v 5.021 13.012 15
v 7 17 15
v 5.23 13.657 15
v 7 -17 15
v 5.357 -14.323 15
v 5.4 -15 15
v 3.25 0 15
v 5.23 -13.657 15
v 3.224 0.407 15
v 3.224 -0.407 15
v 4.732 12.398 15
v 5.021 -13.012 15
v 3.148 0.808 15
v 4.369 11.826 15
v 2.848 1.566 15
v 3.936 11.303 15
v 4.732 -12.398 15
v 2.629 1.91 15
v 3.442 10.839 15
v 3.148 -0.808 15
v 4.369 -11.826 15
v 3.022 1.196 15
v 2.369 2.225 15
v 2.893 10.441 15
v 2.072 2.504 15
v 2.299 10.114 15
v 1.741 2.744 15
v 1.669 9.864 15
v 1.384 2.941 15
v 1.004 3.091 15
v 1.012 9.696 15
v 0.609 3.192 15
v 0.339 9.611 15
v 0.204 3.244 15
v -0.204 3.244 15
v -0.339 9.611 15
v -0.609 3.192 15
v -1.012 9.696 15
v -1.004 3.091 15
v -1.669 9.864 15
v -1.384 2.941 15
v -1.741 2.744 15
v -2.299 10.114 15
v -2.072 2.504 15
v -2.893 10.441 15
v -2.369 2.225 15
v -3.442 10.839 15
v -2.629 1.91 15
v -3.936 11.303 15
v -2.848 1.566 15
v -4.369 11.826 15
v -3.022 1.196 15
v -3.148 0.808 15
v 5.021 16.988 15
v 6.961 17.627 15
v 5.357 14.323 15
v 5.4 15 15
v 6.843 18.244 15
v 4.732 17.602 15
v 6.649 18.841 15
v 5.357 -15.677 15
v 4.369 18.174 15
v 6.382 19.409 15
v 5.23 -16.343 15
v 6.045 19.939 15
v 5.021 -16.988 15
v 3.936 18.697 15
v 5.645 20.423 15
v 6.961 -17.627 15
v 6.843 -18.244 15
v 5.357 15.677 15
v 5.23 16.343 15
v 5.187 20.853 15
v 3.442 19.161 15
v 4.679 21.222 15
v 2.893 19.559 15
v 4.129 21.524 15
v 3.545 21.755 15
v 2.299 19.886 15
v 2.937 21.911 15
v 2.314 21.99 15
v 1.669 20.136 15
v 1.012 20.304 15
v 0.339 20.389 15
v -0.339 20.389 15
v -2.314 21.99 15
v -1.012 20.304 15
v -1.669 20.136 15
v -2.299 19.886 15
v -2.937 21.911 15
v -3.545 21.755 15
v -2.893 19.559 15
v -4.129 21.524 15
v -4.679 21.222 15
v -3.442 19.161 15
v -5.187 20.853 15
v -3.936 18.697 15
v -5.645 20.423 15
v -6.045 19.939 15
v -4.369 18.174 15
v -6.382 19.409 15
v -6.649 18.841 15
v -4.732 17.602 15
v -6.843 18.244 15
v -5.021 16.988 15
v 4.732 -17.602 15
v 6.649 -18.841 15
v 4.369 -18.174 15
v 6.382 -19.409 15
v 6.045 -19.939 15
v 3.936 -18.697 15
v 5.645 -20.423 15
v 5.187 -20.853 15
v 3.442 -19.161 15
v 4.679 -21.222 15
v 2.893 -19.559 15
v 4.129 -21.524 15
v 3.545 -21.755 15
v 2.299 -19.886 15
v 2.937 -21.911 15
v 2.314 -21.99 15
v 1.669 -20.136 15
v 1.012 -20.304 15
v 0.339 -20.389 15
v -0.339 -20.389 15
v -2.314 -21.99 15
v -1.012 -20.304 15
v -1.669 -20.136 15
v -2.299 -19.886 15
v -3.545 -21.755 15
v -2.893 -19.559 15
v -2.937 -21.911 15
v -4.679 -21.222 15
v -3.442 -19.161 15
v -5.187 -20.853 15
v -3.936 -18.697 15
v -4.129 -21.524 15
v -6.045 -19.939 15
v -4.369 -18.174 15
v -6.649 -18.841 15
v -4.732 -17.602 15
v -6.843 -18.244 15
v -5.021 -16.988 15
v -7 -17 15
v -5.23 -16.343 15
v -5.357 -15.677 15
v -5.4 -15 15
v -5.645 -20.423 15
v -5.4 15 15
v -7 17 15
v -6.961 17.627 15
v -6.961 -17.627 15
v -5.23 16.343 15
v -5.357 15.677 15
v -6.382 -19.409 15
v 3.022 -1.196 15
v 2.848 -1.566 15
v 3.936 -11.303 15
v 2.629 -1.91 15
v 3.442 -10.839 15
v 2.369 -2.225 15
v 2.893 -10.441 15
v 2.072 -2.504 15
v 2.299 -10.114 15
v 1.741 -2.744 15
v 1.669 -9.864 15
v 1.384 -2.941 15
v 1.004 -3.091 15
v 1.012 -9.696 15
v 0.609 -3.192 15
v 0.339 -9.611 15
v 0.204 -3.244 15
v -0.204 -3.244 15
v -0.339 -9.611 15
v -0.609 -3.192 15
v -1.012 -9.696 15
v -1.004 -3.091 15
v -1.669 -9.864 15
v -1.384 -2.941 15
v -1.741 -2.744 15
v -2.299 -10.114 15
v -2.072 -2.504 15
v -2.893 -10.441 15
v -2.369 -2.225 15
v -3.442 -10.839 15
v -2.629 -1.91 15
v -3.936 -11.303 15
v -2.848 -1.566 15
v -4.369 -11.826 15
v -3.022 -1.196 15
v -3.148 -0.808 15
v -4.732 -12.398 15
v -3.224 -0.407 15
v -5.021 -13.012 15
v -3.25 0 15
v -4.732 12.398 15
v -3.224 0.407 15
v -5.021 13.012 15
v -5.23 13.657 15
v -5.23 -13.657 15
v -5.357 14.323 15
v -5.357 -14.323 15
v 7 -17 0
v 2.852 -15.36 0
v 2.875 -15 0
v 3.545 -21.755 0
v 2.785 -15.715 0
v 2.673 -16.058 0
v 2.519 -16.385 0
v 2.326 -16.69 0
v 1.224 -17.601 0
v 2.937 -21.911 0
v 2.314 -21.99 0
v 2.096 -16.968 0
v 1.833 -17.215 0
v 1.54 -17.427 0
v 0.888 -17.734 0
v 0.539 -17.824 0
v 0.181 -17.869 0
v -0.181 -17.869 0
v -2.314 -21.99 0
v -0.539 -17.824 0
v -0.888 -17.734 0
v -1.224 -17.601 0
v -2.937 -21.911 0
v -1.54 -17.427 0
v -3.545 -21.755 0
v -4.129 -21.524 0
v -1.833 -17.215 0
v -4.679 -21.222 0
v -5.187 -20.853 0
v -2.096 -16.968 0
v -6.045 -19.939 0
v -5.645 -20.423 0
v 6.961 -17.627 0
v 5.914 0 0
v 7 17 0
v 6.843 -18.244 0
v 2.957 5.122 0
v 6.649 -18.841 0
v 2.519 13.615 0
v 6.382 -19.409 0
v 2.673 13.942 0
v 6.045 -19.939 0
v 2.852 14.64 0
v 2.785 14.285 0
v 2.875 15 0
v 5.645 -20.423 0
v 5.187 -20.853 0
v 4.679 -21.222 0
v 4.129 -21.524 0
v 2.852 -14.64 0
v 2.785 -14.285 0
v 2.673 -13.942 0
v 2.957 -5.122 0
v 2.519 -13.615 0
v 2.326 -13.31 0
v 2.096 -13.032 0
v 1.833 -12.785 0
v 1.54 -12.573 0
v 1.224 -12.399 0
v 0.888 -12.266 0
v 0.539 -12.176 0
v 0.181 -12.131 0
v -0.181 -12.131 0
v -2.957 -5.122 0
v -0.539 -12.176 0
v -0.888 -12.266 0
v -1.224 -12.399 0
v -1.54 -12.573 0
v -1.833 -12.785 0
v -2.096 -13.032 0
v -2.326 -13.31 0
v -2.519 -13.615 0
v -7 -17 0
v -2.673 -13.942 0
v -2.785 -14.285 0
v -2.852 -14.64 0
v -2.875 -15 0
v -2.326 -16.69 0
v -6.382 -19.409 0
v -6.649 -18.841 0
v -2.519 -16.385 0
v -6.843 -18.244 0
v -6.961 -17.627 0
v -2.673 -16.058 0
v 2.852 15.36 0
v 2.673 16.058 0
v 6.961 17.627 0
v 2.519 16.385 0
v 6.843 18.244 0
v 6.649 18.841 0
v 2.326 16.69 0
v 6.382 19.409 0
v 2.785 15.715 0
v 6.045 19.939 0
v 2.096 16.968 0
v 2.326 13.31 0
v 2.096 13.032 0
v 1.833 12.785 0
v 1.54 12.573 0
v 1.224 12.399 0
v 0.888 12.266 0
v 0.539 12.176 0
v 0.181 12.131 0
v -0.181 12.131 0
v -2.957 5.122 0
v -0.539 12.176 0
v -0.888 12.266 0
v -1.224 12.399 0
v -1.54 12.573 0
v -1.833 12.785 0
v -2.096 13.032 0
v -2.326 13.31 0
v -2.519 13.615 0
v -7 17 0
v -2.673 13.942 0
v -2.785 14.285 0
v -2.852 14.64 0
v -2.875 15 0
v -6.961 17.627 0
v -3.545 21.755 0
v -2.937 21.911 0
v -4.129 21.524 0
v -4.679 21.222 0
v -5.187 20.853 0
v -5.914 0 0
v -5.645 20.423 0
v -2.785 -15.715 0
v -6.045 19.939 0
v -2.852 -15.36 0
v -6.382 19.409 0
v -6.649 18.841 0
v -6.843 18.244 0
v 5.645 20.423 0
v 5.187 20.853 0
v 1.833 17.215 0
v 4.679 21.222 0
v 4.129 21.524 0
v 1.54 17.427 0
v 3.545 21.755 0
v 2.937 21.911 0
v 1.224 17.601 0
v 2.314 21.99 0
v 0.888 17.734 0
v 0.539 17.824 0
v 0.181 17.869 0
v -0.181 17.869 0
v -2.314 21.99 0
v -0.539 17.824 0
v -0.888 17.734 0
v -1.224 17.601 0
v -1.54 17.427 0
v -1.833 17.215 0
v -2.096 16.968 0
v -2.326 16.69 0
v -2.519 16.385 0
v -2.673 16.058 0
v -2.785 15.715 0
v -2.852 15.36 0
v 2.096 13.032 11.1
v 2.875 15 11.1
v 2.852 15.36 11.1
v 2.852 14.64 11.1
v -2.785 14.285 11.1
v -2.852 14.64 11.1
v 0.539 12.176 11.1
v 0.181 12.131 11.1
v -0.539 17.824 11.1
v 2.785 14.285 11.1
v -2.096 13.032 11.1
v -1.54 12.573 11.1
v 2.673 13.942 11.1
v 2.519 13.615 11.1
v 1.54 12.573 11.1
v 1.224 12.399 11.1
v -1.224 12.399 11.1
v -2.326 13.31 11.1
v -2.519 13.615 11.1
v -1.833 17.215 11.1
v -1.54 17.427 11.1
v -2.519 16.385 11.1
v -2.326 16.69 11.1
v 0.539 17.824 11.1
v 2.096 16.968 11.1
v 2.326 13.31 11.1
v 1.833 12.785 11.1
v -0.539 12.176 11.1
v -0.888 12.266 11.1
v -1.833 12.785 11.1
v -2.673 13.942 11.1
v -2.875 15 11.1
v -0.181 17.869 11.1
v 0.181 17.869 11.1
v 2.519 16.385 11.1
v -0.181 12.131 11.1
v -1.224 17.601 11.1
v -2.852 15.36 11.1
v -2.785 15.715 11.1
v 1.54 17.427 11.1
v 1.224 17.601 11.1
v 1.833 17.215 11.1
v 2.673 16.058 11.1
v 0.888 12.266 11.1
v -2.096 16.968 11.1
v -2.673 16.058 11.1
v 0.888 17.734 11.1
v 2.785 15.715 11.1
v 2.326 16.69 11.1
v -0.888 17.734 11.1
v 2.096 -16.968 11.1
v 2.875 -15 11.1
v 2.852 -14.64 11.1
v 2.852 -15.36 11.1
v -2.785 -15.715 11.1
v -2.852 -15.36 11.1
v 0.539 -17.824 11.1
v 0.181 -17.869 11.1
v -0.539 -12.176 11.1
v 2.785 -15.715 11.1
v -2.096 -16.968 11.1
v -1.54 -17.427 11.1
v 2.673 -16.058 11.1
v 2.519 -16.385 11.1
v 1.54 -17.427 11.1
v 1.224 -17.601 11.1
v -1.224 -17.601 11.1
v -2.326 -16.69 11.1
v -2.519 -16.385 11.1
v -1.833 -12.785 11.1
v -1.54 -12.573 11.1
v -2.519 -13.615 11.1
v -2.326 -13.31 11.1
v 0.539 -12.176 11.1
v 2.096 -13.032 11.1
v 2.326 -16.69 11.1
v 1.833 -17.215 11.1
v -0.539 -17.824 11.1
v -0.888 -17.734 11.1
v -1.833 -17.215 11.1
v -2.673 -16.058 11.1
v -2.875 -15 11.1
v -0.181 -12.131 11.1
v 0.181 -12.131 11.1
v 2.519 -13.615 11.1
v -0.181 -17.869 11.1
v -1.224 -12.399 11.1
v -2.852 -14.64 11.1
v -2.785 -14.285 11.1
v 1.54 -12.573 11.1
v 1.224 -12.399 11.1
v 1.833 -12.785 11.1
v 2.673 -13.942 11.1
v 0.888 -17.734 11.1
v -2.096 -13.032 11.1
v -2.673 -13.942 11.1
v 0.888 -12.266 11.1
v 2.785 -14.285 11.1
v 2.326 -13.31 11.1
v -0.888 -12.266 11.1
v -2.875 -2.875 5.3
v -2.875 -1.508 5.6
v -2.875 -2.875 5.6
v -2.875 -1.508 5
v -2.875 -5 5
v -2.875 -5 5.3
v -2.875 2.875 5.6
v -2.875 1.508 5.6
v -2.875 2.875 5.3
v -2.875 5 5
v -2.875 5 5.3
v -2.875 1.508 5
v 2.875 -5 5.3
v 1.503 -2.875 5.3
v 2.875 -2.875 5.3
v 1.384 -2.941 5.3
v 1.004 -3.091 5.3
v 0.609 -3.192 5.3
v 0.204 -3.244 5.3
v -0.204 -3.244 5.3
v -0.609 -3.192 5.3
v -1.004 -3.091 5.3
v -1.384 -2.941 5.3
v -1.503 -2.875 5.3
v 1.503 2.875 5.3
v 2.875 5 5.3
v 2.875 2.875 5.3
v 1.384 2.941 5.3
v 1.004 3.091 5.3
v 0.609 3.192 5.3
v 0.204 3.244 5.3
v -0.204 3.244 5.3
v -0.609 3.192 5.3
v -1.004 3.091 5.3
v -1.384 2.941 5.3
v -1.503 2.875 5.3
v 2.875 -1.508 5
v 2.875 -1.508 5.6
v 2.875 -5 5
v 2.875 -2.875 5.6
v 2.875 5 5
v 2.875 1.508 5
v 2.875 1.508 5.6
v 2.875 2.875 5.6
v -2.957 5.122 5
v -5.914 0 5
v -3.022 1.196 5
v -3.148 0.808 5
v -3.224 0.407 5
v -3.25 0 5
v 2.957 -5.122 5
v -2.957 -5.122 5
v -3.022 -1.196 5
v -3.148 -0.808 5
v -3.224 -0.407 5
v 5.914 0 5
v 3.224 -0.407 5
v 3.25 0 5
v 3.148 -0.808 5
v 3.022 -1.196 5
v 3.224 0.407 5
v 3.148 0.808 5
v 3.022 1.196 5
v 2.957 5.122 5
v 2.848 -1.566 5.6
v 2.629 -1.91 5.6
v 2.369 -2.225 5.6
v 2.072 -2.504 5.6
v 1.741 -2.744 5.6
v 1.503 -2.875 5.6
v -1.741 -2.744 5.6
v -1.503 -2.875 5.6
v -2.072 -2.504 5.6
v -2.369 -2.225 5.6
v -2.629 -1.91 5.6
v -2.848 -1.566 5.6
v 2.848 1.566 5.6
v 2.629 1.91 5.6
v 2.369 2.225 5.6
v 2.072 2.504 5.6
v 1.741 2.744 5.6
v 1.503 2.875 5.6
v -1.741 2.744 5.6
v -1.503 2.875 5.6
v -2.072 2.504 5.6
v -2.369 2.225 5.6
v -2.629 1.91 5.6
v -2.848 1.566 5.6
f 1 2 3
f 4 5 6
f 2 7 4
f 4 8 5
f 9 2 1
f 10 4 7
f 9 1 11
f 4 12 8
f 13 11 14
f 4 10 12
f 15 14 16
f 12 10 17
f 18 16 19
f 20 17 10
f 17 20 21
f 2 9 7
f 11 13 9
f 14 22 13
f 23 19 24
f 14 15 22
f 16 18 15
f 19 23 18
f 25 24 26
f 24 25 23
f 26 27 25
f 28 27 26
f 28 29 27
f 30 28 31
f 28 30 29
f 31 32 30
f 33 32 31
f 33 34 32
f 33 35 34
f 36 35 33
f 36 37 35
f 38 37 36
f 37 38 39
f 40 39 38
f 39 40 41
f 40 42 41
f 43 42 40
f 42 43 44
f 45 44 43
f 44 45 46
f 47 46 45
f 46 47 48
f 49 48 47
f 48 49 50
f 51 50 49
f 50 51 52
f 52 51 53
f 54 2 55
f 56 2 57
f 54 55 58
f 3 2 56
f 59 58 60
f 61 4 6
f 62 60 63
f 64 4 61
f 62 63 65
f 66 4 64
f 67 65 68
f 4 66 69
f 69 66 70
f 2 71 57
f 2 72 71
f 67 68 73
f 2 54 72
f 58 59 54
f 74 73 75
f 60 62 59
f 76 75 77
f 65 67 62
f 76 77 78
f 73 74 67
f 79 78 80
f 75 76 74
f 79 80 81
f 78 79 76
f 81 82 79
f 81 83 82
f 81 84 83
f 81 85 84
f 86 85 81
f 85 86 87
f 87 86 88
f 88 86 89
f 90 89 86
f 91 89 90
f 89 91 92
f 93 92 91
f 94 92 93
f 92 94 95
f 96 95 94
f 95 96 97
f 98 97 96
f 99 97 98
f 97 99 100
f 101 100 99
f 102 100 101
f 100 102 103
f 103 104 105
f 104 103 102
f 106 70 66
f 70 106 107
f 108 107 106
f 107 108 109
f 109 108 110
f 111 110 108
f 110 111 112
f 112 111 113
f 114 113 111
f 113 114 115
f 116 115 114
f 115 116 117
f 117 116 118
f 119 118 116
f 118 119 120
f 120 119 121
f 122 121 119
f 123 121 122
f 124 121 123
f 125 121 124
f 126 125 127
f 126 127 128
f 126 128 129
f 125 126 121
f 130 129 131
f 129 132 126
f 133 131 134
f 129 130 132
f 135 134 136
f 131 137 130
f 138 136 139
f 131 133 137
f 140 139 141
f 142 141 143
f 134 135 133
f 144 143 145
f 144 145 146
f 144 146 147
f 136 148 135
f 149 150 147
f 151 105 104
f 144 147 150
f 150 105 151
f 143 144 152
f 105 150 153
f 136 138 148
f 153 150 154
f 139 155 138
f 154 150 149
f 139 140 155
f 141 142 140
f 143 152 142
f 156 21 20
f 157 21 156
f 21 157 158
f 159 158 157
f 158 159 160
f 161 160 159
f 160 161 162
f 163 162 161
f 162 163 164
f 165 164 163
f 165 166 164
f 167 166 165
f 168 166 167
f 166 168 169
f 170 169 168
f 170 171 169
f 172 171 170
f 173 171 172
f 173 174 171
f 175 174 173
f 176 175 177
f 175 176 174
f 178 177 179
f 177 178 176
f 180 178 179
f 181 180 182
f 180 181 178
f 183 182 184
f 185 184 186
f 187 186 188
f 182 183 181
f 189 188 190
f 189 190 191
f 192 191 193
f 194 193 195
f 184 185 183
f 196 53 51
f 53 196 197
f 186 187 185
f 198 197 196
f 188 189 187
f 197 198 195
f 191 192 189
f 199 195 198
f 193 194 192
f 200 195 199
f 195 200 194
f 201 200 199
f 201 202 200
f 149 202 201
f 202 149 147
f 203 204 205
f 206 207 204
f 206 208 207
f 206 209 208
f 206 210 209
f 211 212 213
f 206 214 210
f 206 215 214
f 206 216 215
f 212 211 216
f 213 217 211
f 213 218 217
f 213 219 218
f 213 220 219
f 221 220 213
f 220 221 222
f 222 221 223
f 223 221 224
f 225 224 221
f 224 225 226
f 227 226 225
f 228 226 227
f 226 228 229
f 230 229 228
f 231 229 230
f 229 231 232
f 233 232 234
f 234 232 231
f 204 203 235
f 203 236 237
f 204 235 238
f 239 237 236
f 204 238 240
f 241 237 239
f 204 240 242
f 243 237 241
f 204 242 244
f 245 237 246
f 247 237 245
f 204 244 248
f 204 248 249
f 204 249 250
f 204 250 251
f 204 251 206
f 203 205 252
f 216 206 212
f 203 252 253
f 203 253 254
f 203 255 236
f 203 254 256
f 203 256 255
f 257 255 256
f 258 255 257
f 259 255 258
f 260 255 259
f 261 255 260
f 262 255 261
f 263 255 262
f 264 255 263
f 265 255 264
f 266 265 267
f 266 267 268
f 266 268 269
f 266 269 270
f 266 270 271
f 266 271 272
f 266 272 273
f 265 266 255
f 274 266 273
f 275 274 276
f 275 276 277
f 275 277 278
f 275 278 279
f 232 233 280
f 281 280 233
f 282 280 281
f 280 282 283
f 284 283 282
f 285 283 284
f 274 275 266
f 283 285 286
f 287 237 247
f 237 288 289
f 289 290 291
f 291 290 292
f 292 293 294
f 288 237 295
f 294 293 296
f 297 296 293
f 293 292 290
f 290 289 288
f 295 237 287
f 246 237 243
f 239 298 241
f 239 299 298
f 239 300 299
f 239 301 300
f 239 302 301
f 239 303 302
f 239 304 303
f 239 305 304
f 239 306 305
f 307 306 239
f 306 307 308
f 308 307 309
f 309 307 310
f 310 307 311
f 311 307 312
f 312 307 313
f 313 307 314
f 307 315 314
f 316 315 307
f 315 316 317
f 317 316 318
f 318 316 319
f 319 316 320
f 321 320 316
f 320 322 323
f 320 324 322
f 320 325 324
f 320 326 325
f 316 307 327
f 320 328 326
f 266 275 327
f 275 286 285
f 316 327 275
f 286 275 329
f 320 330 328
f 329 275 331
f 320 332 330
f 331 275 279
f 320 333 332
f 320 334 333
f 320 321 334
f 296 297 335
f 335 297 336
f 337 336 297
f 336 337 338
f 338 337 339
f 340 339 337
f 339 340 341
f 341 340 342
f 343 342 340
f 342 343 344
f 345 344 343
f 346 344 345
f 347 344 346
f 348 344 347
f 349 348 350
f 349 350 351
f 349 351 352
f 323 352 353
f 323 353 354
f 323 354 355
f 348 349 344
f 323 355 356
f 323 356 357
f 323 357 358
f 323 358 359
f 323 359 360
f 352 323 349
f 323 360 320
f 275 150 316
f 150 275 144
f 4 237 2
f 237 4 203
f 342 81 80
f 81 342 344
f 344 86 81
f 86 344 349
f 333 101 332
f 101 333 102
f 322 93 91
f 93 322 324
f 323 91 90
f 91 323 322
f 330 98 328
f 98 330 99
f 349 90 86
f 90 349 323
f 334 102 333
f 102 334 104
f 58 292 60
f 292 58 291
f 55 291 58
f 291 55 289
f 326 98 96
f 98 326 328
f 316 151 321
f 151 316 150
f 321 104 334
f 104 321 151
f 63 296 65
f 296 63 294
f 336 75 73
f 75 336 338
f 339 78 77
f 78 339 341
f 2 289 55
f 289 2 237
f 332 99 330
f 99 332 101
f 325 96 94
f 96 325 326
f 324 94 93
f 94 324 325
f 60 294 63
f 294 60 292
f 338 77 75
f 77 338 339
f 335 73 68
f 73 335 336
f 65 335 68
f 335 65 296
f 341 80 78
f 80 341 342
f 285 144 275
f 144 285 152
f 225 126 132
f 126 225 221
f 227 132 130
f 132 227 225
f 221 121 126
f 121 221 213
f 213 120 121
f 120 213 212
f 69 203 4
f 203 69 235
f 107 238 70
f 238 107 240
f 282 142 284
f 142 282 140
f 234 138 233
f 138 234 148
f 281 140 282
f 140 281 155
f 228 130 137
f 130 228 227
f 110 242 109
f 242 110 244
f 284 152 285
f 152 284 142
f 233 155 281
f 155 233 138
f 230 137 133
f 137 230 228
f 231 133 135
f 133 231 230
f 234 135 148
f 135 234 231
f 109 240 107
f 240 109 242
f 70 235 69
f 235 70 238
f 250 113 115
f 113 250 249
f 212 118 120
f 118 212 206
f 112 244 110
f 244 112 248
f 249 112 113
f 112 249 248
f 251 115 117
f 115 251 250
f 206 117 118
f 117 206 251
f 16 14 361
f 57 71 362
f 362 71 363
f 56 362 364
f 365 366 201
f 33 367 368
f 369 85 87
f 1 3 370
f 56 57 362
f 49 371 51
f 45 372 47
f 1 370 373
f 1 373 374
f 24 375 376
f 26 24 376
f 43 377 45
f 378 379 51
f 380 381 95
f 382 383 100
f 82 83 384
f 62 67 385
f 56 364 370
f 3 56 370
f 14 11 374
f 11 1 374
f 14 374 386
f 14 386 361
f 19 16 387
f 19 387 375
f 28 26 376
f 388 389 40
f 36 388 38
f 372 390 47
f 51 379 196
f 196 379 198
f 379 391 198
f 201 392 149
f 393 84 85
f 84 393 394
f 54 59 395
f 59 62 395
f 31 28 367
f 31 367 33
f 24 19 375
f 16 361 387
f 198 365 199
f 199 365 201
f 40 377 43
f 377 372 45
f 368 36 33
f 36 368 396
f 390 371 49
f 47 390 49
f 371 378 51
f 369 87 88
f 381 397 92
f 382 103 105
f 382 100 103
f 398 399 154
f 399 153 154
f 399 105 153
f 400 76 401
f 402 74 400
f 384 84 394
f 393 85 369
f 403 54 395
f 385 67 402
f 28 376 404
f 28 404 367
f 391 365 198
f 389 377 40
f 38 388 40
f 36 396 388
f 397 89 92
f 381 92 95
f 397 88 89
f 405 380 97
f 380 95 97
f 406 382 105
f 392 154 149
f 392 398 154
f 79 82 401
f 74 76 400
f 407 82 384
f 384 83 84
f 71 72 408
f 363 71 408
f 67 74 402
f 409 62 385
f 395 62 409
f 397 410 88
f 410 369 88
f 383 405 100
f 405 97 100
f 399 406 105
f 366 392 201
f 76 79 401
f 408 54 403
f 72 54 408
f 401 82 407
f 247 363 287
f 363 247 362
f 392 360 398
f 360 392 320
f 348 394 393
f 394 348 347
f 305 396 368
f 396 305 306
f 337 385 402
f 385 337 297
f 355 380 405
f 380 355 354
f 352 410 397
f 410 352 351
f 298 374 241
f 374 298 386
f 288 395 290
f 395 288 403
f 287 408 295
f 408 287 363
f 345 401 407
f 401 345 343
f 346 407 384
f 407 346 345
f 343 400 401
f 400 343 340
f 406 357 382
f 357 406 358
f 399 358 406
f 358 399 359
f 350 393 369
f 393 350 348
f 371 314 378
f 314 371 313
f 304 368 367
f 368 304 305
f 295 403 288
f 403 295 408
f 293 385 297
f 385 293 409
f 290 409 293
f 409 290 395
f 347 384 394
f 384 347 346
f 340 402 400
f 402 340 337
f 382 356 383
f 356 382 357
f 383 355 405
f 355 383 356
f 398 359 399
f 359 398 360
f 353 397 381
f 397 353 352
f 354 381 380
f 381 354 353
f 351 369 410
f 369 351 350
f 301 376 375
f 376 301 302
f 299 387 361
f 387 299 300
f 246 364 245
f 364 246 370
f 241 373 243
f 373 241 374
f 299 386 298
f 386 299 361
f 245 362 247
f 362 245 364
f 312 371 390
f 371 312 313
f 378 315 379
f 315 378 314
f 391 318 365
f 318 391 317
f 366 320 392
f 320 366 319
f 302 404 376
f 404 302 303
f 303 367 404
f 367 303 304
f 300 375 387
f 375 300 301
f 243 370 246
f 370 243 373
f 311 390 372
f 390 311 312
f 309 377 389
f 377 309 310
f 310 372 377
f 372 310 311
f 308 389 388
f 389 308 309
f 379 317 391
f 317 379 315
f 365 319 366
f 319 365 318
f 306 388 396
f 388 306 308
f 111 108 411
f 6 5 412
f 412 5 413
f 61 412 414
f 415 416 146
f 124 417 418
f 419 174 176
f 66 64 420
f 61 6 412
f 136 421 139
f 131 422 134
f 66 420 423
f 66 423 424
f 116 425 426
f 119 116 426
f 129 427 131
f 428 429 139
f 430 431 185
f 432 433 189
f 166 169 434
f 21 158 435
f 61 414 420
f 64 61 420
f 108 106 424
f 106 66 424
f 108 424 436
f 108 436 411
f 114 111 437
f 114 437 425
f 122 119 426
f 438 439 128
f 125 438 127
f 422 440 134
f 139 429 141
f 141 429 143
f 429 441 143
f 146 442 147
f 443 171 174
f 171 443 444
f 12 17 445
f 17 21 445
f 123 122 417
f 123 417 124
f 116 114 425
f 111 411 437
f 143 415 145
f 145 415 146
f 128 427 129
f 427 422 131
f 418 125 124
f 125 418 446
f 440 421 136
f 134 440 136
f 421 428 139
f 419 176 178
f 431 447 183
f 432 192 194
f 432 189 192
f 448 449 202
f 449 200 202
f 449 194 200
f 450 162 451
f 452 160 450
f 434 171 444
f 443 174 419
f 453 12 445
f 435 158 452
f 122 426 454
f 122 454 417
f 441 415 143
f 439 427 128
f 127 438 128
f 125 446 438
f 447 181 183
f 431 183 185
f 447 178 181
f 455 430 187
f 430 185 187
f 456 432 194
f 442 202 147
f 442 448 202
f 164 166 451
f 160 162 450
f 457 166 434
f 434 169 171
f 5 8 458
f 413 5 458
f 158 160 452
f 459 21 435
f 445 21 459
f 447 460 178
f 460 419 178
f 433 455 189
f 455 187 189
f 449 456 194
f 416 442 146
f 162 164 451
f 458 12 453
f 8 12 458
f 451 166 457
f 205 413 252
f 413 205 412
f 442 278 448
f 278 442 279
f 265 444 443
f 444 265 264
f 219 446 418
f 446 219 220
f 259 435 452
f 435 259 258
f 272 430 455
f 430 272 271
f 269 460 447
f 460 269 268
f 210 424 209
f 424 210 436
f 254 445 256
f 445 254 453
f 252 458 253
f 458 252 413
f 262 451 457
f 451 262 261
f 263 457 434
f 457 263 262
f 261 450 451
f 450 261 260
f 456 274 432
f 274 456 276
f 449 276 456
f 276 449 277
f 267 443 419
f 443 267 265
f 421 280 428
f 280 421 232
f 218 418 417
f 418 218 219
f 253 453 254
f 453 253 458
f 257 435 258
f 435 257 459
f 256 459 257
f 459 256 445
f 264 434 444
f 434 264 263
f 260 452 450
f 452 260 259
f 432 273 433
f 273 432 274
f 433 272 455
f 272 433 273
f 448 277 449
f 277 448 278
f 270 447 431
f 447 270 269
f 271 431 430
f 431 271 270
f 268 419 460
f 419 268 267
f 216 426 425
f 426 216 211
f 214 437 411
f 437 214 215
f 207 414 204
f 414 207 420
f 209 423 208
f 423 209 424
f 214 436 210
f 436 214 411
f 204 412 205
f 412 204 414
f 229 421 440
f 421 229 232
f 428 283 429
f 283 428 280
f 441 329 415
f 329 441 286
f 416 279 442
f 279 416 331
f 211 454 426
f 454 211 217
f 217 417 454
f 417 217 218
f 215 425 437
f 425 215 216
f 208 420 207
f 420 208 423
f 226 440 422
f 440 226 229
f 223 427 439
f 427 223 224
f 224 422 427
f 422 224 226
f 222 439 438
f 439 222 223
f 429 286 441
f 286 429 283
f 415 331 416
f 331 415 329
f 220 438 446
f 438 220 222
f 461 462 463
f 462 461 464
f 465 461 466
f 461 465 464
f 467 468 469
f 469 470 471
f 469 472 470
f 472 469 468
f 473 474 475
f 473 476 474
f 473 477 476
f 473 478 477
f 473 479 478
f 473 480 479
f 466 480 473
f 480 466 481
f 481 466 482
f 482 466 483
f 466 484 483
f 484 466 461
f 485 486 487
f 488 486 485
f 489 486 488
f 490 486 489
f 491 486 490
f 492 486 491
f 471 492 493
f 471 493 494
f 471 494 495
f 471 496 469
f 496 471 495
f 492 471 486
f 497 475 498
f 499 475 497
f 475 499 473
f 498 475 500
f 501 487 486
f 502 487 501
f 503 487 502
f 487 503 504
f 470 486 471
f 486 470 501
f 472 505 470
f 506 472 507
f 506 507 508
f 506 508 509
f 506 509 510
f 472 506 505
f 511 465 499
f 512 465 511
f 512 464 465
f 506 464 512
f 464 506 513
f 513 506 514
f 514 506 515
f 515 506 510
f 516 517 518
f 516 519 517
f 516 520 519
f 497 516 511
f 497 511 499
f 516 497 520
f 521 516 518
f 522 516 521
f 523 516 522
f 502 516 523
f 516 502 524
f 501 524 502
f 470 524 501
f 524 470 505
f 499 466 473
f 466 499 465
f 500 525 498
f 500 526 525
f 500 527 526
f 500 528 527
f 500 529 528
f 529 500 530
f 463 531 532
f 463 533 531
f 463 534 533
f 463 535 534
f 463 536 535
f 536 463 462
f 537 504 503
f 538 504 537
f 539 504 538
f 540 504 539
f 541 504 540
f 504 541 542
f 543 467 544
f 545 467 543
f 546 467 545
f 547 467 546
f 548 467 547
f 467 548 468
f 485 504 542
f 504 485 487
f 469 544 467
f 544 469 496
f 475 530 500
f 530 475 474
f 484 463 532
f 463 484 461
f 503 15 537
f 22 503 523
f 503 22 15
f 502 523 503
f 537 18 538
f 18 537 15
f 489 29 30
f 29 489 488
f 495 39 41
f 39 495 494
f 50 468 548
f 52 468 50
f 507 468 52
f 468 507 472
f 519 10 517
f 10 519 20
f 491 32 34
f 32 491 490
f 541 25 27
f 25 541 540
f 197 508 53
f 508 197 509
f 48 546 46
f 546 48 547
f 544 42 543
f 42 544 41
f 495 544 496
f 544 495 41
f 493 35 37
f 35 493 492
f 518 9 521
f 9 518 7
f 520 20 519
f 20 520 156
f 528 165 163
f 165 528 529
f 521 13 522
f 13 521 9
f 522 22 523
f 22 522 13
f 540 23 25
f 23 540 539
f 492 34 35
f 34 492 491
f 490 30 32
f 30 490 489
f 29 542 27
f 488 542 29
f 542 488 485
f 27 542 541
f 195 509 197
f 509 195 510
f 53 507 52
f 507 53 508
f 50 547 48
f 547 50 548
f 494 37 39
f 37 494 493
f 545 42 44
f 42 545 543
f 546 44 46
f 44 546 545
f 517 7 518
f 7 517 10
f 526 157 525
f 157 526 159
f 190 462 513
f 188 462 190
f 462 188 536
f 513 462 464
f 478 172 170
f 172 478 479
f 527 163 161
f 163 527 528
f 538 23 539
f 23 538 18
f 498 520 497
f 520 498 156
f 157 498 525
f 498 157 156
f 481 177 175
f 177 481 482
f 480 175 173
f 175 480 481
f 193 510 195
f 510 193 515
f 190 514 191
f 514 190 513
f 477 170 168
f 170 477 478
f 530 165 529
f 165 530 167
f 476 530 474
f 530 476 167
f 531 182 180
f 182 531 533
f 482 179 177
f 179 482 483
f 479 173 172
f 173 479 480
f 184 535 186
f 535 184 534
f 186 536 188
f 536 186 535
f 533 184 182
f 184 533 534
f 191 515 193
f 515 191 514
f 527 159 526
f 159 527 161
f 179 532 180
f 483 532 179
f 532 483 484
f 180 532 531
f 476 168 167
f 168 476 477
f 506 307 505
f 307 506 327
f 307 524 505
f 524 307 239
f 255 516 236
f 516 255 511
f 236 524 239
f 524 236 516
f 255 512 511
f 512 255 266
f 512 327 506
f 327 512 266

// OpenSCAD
$fn = 50;


difference() {
	union() {
		cylinder(h = 15, r = 7.0000000000);
		translate(v = [0.0000000000, 7.5000000000, 0]) {
			hull() {
				translate(v = [-2.0000000000, 9.5000000000, 0]) {
					cylinder(h = 15, r = 5);
				}
				translate(v = [2.0000000000, 9.5000000000, 0]) {
					cylinder(h = 15, r = 5);
				}
				translate(v = [-2.0000000000, -9.5000000000, 0]) {
					cylinder(h = 15, r = 5);
				}
				translate(v = [2.0000000000, -9.5000000000, 0]) {
					cylinder(h = 15, r = 5);
				}
			}
		}
		translate(v = [0.0000000000, 7.5000000000, 0]) {
			hull() {
				translate(v = [-2.0000000000, 9.5000000000, 0]) {
					cylinder(h = 15, r = 5);
				}
				translate(v = [2.0000000000, 9.5000000000, 0]) {
					cylinder(h = 15, r = 5);
				}
				translate(v = [-2.0000000000, -9.5000000000, 0]) {
					cylinder(h = 15, r = 5);
				}
				translate(v = [2.0000000000, -9.5000000000, 0]) {
					cylinder(h = 15, r = 5);
				}
			}
		}
		translate(v = [0.0000000000, -7.5000000000, 0]) {
			hull() {
				translate(v = [-2.0000000000, 9.5000000000, 0]) {
					cylinder(h = 15, r = 5);
				}
				translate(v = [2.0000000000, 9.5000000000, 0]) {
					cylinder(h = 15, r = 5);
				}
				translate(v = [-2.0000000000, -9.5000000000, 0]) {
					cylinder(h = 15, r = 5);
				}
				translate(v = [2.0000000000, -9.5000000000, 0]) {
					cylinder(h = 15, r = 5);
				}
			}
		}
		translate(v = [0.0000000000, -7.5000000000, 0]) {
			hull() {
				translate(v = [-2.0000000000, 9.5000000000, 0]) {
					cylinder(h = 15, r = 5);
				}
				translate(v = [2.0000000000, 9.5000000000, 0]) {
					cylinder(h = 15, r = 5);
				}
				translate(v = [-2.0000000000, -9.5000000000, 0]) {
					cylinder(h = 15, r = 5);
				}
				translate(v = [2.0000000000, -9.5000000000, 0]) {
					cylinder(h = 15, r = 5);
				}
			}
		}
	}
	union() {
		translate(v = [0.0000000000, 15.0000000000, 15]) {
			rotate(a = [0, 0, 0]) {
				difference() {
					union() {
						#translate(v = [0, 0, -15.0000000000]) {
							cylinder(h = 15, r = 2.6000000000);
						}
						#translate(v = [0, 0, -3.9000000000]) {
							cylinder(h = 3.9000000000, r1 = 2.8750000000, r2 = 5.4000000000);
						}
						#translate(v = [0, 0, -15.0000000000]) {
							cylinder(h = 15, r = 2.8750000000);
						}
						#translate(v = [0, 0, -15.0000000000]) {
							cylinder(h = 15, r = 2.6000000000);
						}
					}
					union();
				}
			}
		}
		translate(v = [0.0000000000, 15.0000000000, 15]) {
			rotate(a = [0, 0, 0]) {
				difference() {
					union() {
						#translate(v = [0, 0, -15.0000000000]) {
							cylinder(h = 15, r = 2.6000000000);
						}
						#translate(v = [0, 0, -3.9000000000]) {
							cylinder(h = 3.9000000000, r1 = 2.8750000000, r2 = 5.4000000000);
						}
						#translate(v = [0, 0, -15.0000000000]) {
							cylinder(h = 15, r = 2.8750000000);
						}
						#translate(v = [0, 0, -15.0000000000]) {
							cylinder(h = 15, r = 2.6000000000);
						}
					}
					union();
				}
			}
		}
		translate(v = [0.0000000000, -15.0000000000, 15]) {
			rotate(a = [0, 0, 0]) {
				difference() {
					union() {
						#translate(v = [0, 0, -15.0000000000]) {
							cylinder(h = 15, r = 2.6000000000);
						}
						#translate(v = [0, 0, -3.9000000000]) {
							cylinder(h = 3.9000000000, r1 = 2.8750000000, r2 = 5.4000000000);
						}
						#translate(v = [0, 0, -15.0000000000]) {
							cylinder(h = 15, r = 2.8750000000);
						}
						#translate(v = [0, 0, -15.0000000000]) {
							cylinder(h = 15, r = 2.6000000000);
						}
					}
					union();
				}
			}
		}
		translate(v = [0.0000000000, -15.0000000000, 15]) {
			rotate(a = [0, 0, 0]) {
				difference() {
					union() {
						#translate(v = [0, 0, -15.0000000000]) {
							cylinder(h = 15, r = 2.6000000000);
						}
						#translate(v = [0, 0, -3.9000000000]) {
							cylinder(h = 3.9000000000, r1 = 2.8750000000, r2 = 5.4000000000);
						}
						#translate(v = [0, 0, -15.0000000000]) {
							cylinder(h = 15, r = 2.8750000000);
						}
						#translate(v = [0, 0, -15.0000000000]) {
							cylinder(h = 15, r = 2.6000000000);
						}
					}
					union();
				}
			}
		}
		translate(v = [0.0000000000, 0.0000000000, 0]) {
			rotate(a = [0, 0, 0]) {
				difference() {
					union() {
						#translate(v = [-2.8750000000, -5.0000000000, -0.3000000000]) {
							cube(size = [5.7500000000, 10, 0.3000000000]);
						}
						#translate(v = [-2.8750000000, -2.8750000000, -0.6000000000]) {
							cube(size = [5.7500000000, 5.7500000000, 0.3000000000]);
						}
						#translate(v = [-2.8750000000, -5.0000000000, 5]) {
							cube(size = [5.7500000000, 10, 0.3000000000]);
						}
						#translate(v = [-2.8750000000, -2.8750000000, 5.3000000000]) {
							cube(size = [5.7500000000, 5.7500000000, 0.3000000000]);
						}
						#translate(v = [0, 0, -100.0000000000]) {
							cylinder(h = 200, r = 3.2500000000);
						}
						#linear_extrude(height = 5) {
							polygon(points = [[5.9142500000, 0.0000000000], [2.9571250000, 5.1218907443], [-2.9571250000, 5.1218907443], [-5.9142500000, 0.0000000000], [-2.9571250000, -5.1218907443], [2.9571250000, -5.1218907443]]);
						}
						#translate(v = [-2.8750000000, -5.0000000000, -0.3000000000]) {
							cube(size = [5.7500000000, 10, 0.3000000000]);
						}
						#translate(v = [-2.8750000000, -2.8750000000, -0.6000000000]) {
							cube(size = [5.7500000000, 5.7500000000, 0.3000000000]);
						}
						#translate(v = [-2.8750000000, -5.0000000000, 5]) {
							cube(size = [5.7500000000, 10, 0.3000000000]);
						}
						#translate(v = [-2.8750000000, -2.8750000000, 5.3000000000]) {
							cube(size = [5.7500000000, 5.7500000000, 0.3000000000]);
						}
						#translate(v = [0, 0, -100.0000000000]) {
							cylinder(h = 200, r = 3.2500000000);
						}
						#translate(v = [-2.8750000000, -5.0000000000, -0.3000000000]) {
							cube(size = [5.7500000000, 10, 0.3000000000]);
						}
						#translate(v = [-2.8750000000, -2.8750000000, -0.6000000000]) {
							cube(size = [5.7500000000, 5.7500000000, 0.3000000000]);
						}
						#translate(v = [-2.8750000000, -5.0000000000, 5]) {
							cube(size = [5.7500000000, 10, 0.3000000000]);
						}
						#translate(v = [-2.8750000000, -2.8750000000, 5.3000000000]) {
							cube(size = [5.7500000000, 5.7500000000, 0.3000000000]);
						}
						#translate(v = [0, 0, -100.0000000000]) {
							cylinder(h = 200, r = 3.2500000000);
						}
					}
					union();
				}
			}
		}
		translate(v = [0, 0, -100]) {
			cylinder(h = 200, r = 3.2500000000);
		}
		translate(v = [0, 0, -100]) {
			cylinder(h = 200, r = 1.8000000000);
		}
	}
}
